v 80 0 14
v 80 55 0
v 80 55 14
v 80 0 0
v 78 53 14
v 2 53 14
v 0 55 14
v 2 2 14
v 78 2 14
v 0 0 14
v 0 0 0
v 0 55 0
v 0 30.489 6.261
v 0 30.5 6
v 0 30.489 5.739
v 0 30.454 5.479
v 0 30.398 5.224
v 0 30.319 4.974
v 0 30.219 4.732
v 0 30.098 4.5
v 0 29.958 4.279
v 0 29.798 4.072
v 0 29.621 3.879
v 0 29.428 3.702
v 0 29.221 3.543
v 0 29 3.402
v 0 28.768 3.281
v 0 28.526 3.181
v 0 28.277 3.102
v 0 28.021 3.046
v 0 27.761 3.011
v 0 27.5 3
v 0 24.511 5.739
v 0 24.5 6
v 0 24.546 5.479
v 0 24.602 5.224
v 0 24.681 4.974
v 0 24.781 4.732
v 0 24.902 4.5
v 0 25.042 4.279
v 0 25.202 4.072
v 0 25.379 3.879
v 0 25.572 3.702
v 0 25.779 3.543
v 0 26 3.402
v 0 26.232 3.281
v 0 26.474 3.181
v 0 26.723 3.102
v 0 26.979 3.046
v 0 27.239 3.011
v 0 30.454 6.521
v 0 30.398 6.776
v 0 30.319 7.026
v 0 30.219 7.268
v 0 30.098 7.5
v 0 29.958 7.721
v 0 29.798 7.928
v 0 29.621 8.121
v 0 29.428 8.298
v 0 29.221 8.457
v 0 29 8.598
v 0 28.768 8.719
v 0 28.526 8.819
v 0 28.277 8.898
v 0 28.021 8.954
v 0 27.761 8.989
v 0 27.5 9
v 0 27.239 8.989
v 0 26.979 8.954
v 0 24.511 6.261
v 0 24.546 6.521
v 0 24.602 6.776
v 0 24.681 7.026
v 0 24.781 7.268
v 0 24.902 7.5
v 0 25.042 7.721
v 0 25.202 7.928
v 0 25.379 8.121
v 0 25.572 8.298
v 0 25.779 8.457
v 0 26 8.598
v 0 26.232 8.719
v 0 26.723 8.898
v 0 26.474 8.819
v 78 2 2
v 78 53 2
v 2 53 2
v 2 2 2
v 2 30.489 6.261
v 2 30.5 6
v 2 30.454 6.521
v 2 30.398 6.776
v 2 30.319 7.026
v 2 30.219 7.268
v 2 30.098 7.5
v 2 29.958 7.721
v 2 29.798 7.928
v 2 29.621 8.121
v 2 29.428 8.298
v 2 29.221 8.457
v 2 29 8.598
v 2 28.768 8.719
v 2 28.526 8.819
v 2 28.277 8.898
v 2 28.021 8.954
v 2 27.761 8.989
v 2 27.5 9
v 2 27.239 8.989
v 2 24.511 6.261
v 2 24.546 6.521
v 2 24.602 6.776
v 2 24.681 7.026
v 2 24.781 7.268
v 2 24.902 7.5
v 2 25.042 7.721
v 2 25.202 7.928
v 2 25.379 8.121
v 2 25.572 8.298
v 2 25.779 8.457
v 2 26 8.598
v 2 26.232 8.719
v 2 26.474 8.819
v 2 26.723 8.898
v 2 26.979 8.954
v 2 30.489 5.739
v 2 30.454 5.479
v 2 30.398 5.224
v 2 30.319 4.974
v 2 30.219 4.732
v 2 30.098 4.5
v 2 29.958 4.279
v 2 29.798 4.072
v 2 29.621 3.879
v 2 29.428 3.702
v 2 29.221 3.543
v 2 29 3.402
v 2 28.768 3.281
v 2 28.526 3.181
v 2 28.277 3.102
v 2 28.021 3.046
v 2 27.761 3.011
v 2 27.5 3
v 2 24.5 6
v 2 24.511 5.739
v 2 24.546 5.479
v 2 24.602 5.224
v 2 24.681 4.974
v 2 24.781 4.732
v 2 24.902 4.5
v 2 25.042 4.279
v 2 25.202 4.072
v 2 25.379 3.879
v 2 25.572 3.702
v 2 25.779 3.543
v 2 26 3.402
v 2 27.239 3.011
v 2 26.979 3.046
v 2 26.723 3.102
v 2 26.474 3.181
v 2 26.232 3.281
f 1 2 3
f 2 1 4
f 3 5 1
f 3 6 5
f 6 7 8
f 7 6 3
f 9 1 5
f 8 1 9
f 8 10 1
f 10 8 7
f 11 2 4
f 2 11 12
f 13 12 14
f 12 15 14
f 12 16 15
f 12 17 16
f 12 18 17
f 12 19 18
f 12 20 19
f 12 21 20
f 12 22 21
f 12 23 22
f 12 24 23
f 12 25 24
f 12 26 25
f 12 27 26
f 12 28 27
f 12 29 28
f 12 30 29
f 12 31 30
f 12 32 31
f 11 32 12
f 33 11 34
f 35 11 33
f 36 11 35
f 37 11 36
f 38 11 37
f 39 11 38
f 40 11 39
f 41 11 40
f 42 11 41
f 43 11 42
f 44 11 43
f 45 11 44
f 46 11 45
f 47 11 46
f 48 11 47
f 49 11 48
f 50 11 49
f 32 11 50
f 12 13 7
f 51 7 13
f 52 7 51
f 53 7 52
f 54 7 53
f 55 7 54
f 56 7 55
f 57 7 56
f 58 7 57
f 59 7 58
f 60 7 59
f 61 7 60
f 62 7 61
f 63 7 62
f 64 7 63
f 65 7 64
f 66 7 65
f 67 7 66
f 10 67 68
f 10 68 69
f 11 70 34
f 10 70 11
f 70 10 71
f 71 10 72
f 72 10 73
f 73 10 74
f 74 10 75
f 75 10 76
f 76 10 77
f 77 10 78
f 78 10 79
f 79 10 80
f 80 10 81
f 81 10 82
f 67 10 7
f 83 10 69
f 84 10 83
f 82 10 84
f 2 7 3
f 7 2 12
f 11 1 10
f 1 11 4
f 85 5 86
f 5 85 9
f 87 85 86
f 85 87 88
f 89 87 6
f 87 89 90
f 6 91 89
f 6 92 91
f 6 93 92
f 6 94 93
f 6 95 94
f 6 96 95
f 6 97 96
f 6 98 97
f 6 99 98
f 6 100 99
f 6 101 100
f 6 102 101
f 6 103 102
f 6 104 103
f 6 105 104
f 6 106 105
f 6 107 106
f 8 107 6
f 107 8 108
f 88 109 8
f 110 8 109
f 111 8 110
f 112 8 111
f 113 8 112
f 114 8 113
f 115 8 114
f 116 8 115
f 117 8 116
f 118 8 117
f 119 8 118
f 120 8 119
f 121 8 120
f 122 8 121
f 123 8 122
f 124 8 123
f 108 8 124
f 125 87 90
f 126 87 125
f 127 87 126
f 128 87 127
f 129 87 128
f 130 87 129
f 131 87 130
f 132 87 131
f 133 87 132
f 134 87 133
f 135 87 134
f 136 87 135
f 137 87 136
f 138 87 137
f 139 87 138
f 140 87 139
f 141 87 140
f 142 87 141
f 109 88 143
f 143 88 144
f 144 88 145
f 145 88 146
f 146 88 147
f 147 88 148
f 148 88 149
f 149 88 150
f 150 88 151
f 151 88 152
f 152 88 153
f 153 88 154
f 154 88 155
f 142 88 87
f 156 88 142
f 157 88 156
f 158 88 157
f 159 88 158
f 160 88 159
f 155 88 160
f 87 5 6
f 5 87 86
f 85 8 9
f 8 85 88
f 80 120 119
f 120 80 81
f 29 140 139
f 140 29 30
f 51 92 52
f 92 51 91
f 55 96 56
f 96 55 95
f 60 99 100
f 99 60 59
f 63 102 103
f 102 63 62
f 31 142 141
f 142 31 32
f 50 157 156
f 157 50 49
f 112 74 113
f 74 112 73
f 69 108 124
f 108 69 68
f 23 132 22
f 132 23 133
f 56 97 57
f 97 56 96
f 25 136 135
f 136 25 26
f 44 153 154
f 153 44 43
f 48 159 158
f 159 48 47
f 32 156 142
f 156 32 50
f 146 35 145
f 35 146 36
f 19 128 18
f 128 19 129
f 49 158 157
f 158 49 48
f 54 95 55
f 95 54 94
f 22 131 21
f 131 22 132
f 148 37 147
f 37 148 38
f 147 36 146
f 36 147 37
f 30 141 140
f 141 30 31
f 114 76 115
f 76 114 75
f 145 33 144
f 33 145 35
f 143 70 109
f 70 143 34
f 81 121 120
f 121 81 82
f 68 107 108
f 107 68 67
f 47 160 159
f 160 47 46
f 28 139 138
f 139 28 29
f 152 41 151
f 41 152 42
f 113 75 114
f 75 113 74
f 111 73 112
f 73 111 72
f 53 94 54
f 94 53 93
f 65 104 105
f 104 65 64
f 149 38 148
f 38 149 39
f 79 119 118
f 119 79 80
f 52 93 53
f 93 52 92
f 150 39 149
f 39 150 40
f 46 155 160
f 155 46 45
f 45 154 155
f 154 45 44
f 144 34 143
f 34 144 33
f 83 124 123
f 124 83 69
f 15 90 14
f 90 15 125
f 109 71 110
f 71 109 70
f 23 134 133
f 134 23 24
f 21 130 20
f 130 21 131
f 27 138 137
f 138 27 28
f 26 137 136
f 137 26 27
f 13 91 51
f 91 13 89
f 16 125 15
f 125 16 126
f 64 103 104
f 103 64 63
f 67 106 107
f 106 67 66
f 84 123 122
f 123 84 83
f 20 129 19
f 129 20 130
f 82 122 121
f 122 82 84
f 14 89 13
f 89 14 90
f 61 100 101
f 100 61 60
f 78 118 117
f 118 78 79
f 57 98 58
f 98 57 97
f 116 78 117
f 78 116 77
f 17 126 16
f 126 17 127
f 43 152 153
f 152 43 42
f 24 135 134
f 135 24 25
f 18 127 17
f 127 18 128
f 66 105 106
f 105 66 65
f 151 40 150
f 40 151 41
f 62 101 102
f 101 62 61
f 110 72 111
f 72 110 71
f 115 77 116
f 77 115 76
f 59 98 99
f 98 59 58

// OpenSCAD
// file: parameters.scad
// AFPM-Desk-v4 PoleShoe shared parameters (mm)
// SSDR dual-rotor axial-flux PM learning generator:
// mild-steel back-iron + mild-steel pole shoes under each magnet.
// Faraday induction education only — not free-energy / overunity.
// Target: Anycubic Kobra 3 Max, 0.4 mm nozzle, 0.2 mm layers, PETG.

$fn = 72;

// --- Printer / FDM assumptions ---
nozzle = 0.4;
layer = 0.2;
wall = 1.6;                 // load-bearing ~4 perimeters
housing_wall = 2.4;
clearance_slip = 0.35;      // shaft slip fit
clearance_loose = 0.55;
press_interference = 0.15;  // bearing pocket undersize total (coupon-test)
magnet_pocket_xy = 0.25;    // +0.25 mm on diameter
magnet_pocket_z = 0.15;     // +0.15 mm depth
elephant_foot = 0.5;

// --- Magnets (N42 Neo discs) — Austin's Ø20×5 stock ---
magnet_d = 20;
magnet_h = 5;
magnet_count = 12;          // per rotor (12+12 total)
magnet_pcd = 90;            // center pitch; ~3.3 mm edge gap between discs

// --- Mild-steel pole shoes (flux concentrators under each magnet) ---
// Slightly smaller OD than magnet teaches concentration / reluctance.
pole_shoe_d = 18;
pole_shoe_h = 2.0;          // purchased mild-steel disc or punched blank
pole_shoe_pocket_xy = 0.30;
pole_shoe_pocket_z = 0.15;

// --- Steel back-iron (purchased mild steel disc behind pole-shoe ring) ---
steel_od = 118;
steel_id = 16;              // clearance around hub boss
steel_h = 1.5;              // 1.5–2.0 mm mild steel OK
steel_recess_clearance = 0.3;

// --- Rotor printed disc ---
rotor_od = 130;
rotor_hub_bore = 12;        // seats on shaft_hub boss
rotor_thickness = 11;       // magnet + pole shoe + plastic floor + steel recess
magnet_pocket_depth = magnet_h + magnet_pocket_z;
pole_shoe_pocket_depth = pole_shoe_h + pole_shoe_pocket_z;
steel_recess_depth = steel_h + 0.2;

// --- Stator (coreless, between rotors) — 9 coils for 3-phase ---
stator_od = 140;
stator_id = 30;
stator_thickness = 12;
coil_count = 9;
coil_slot_w = 22;
coil_slot_l = 28;           // radial length of pocket
coil_slot_depth = 10;
coil_pcd = 90;
stator_pillar_pcd = 118;    // M4 pillar holes

// --- Coil bobbin (stays in stator) ---
former_core_w = 16;
former_core_l = 24;
former_flange = 2.5;
former_wind_h = 9.2;        // fits coil_slot_depth - margin

// --- Shaft / bearings ---
shaft_d = 8;
bearing_od = 22;            // 608-2RS / 608ZZ
bearing_id = 8;
bearing_h = 7;
bearing_seat_od = bearing_od - press_interference; // ~21.85; coupon-test

// --- Base / frame ---
base_w = 200;
base_d = 180;
base_h = 8;
post_h = 78;
post_spacing = 145;         // Y distance between bearing post centers (thicker stack)
post_d = 36;

// --- Axial stack targets ---
// crank | brg | hub+rotorA+steel | air | stator | air | steel+rotorB+hub | brg
air_gap_nominal = 1.75;     // mechanical per side magnet↔coil face (1.5–2.0)

// --- Crank ---
crank_arm_len = 90;
crank_arm_w = 18;
crank_arm_t = 10;
handle_d = 14;
handle_len = 45;

// --- Electronics tray ---
tray_w = 80;
tray_d = 55;
tray_h = 14;

// --- Fasteners ---
m3_clear = 3.4;
m3_tap = 2.5;
m4_clear = 4.3;
// main file
include <parameters.scad>

module electronics_tray() {
  difference() {
    cube([tray_w, tray_d, tray_h]);
    translate([2, 2, 2])
      cube([tray_w-4, tray_d-4, tray_h]);
    translate([-0.1, tray_d/2, 6])
      rotate([0,90,0])
        cylinder(h=3, d=6);
  }
}

electronics_tray();
